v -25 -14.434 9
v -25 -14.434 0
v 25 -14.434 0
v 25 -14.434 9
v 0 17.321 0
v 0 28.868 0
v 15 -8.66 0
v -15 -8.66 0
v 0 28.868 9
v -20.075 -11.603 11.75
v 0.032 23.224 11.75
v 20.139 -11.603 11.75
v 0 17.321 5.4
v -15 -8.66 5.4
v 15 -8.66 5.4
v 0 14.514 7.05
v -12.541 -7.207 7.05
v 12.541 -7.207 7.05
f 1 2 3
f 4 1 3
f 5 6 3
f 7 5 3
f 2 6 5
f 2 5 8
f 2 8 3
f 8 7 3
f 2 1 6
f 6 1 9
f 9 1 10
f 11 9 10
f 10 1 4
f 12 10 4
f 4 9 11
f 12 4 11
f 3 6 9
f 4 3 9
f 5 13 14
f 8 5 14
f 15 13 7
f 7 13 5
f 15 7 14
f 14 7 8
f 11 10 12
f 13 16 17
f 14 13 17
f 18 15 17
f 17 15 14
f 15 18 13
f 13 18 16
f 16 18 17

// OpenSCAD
// file: bevel_extrude.scad
bevel_extrude_example();

module bevel_extrude_example()
{
	bevel_extrude(height=10,bevel_depth=2,$fn=16) 
	example_shape();
}

module example_shape()
{
	union()
	{
		square([8,30],true);
		rotate(30)
		square([35,8],true);
	
		translate([0,15])
		square([30,8],true);
	}
}

module bevel_border(size=1)
{
	difference()
	{
		minkowski()
		{
			child();
			square(size,true);
		}
		child();
	}
}

module bevel_cutaway(bevel_depth=5)
{
	translate([0,0,-bevel_depth])
	minkowski()
	{
		linear_extrude(height=bevel_depth,convexity=5)
		bevel_border(1)
		child();
		cylinder(h=bevel_depth+1,r1=0,r2=bevel_depth*sqrt(2));
	}
}

module bevel_extrude(height=20,bevel_depth=1)
{
	difference()
	{
		linear_extrude(height=height,convexity=5)
		child();

		translate([0,0,height])
		bevel_cutaway(bevel_depth)
		child();
	}	
}
// main file
use <bevel_extrude.scad>

base2height = sqrt(3)/2;

module equilateral_triangle(base)
{
	h = base * base2height;

	polygon(points=[[-base/2,-h/3], [0,2*h/3], [base/2,-h/3]], paths=[[0,1,2]]);
}

module triforce_triangle(length)
{
	height = length * base2height;
	height_flat = 18 * (length/100);
	height_bevel = 5.5 * (length/100);

	bevel_extrude(height=height_flat+height_bevel,bevel_depth=height_bevel)
		equilateral_triangle(length);
}

difference()
{
	triforce_triangle(50);
	triforce_triangle(30);
}
